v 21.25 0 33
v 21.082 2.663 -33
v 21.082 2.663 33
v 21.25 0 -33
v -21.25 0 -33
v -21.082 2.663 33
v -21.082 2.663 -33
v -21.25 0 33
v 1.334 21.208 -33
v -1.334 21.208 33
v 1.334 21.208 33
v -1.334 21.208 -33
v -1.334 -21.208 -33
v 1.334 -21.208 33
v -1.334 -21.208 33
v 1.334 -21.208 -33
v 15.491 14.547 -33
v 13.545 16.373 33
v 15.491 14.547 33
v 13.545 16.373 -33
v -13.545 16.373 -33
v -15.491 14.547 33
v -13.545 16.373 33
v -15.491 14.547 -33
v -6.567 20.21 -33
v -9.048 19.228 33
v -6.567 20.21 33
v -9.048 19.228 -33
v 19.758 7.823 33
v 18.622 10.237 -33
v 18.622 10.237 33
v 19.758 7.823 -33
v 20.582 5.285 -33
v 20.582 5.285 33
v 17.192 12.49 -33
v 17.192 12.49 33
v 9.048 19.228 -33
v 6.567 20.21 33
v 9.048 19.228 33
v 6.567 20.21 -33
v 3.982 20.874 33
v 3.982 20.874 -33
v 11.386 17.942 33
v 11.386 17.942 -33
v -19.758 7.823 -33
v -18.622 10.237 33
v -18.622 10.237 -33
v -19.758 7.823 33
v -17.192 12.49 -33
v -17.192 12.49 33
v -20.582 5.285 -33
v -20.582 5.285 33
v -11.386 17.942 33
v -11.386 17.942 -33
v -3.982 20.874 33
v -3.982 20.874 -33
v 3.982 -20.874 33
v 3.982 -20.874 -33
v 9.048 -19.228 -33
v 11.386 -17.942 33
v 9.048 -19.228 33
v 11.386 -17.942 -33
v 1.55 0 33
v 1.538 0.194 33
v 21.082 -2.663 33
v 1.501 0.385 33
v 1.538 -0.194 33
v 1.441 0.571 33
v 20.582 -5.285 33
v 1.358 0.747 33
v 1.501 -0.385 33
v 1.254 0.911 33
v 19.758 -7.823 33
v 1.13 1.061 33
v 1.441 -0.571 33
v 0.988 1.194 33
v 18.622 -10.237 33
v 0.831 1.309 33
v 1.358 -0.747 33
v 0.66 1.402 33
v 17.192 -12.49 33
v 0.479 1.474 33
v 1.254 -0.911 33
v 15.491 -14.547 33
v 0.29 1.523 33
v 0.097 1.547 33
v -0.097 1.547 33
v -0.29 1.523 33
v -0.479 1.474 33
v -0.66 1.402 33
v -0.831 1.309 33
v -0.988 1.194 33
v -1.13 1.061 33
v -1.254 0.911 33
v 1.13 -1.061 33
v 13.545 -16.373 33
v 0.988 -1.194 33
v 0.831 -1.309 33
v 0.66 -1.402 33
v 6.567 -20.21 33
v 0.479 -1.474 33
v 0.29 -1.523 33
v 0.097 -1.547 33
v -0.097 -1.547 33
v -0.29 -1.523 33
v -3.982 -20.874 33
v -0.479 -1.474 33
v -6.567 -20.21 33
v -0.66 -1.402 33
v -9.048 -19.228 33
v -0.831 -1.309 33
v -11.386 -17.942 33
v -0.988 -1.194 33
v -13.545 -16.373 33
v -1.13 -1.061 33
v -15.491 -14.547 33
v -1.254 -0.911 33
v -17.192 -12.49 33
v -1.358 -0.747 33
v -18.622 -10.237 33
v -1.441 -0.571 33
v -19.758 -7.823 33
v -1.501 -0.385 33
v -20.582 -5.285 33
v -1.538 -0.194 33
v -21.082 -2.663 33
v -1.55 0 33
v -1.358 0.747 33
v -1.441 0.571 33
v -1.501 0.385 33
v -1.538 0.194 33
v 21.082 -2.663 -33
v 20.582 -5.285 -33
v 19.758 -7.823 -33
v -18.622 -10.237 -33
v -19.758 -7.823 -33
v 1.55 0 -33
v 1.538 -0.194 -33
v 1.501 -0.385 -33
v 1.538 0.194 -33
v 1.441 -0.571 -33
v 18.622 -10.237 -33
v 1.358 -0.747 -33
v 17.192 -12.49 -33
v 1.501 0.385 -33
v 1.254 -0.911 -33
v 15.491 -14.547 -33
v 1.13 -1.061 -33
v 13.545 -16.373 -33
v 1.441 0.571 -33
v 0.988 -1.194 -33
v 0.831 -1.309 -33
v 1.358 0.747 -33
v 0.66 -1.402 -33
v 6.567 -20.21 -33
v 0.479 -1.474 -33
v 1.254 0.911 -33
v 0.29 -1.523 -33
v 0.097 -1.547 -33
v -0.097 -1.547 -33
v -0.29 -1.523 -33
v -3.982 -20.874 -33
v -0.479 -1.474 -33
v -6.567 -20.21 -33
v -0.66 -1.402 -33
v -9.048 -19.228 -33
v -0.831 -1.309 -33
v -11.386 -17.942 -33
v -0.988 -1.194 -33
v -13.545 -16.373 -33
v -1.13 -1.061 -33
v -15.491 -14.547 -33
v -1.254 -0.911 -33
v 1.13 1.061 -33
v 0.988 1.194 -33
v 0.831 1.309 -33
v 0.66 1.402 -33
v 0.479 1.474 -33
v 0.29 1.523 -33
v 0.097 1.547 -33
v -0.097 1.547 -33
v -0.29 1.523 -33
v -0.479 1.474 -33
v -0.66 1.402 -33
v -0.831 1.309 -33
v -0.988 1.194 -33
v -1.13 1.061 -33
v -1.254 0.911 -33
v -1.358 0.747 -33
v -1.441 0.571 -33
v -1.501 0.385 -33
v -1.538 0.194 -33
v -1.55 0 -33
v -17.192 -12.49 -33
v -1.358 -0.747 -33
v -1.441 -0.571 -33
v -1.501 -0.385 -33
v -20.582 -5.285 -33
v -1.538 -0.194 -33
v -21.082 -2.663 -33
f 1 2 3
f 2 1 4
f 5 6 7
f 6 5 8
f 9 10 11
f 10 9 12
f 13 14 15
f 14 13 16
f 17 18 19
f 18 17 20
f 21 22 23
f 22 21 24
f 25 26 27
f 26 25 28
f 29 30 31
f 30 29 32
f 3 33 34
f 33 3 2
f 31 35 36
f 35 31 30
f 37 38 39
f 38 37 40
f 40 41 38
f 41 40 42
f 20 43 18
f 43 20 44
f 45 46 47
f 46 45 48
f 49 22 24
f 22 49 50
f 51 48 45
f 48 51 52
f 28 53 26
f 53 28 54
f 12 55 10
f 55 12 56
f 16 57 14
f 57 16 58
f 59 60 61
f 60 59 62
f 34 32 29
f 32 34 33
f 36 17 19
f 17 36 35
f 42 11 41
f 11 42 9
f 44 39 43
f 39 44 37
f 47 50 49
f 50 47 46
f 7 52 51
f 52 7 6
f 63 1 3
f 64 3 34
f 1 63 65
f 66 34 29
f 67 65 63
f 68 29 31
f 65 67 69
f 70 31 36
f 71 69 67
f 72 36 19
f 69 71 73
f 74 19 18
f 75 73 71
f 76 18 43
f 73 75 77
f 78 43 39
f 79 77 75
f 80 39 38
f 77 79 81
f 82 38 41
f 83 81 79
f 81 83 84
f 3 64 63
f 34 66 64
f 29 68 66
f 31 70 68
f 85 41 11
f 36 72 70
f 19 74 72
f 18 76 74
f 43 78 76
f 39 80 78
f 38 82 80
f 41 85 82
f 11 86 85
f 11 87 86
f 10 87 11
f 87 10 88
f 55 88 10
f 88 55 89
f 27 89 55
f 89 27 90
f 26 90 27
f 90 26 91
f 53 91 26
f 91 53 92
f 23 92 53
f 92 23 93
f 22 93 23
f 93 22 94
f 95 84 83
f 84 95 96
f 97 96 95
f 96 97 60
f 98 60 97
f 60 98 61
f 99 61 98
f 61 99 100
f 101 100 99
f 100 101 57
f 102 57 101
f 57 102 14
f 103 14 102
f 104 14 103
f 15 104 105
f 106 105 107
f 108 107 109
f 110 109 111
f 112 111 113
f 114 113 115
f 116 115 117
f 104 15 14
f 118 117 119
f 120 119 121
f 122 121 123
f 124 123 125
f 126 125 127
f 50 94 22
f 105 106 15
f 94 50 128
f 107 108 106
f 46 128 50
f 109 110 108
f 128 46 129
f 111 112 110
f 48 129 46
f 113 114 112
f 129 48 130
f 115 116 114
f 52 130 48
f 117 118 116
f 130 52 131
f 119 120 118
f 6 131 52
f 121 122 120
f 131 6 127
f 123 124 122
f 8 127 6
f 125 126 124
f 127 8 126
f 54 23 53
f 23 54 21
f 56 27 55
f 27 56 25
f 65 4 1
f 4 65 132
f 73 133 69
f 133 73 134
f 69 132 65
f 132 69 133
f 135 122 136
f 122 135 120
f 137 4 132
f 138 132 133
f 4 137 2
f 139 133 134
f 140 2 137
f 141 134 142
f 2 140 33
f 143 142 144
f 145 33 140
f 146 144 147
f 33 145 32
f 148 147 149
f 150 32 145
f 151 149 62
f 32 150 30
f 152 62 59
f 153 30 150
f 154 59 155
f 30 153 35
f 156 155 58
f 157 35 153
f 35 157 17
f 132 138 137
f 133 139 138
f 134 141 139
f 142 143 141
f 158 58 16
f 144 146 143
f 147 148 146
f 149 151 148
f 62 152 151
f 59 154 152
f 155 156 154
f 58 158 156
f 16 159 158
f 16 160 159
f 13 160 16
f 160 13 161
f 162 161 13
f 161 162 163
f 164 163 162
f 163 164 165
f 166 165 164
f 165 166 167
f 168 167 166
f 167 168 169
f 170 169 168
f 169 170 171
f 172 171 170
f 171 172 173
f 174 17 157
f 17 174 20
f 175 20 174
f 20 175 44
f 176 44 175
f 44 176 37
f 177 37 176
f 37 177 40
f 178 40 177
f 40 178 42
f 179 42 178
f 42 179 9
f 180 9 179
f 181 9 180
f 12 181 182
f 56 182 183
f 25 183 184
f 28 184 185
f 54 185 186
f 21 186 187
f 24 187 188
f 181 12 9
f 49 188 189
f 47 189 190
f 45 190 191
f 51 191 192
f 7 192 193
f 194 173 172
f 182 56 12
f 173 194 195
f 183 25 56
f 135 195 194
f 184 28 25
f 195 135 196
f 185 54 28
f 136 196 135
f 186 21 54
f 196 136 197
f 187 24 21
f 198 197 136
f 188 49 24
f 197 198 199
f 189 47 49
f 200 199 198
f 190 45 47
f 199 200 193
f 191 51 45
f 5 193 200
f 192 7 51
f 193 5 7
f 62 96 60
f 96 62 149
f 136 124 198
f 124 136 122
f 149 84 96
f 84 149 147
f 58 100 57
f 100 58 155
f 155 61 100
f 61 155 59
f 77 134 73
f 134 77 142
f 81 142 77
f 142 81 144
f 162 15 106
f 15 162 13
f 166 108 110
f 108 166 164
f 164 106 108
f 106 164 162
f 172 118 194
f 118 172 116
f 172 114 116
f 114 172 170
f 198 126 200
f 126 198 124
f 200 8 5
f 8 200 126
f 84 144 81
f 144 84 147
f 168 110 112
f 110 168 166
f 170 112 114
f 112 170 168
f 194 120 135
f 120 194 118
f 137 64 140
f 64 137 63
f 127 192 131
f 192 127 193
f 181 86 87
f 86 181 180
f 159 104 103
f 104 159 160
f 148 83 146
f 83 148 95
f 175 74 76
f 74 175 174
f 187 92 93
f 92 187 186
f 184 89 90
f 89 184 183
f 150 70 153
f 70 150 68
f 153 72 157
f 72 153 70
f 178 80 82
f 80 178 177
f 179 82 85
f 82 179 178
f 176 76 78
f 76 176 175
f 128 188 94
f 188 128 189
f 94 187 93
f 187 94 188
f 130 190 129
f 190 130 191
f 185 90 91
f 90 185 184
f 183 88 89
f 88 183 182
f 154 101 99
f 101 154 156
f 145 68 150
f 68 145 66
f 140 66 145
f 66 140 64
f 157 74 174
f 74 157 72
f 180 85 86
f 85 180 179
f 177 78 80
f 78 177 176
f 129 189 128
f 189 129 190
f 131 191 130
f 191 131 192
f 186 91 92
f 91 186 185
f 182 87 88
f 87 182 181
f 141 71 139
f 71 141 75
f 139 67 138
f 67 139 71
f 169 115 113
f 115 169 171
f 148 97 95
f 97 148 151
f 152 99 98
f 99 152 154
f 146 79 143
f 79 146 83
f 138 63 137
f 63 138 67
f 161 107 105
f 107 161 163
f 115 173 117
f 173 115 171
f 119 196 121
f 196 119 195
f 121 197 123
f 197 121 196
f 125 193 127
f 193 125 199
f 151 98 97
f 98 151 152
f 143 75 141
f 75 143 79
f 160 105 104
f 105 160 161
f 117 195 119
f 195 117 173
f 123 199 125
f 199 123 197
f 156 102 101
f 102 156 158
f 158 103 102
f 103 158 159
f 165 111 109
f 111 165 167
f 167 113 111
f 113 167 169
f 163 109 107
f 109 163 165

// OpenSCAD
$fn = 50;


difference() {
	union() {
		translate(v = [0, 0, -33.0000000000]) {
			cylinder(h = 66, r = 21.2500000000);
		}
	}
	union() {
		translate(v = [0, 0, -100.0000000000]) {
			cylinder(h = 200, r = 1.5500000000);
		}
	}
}
